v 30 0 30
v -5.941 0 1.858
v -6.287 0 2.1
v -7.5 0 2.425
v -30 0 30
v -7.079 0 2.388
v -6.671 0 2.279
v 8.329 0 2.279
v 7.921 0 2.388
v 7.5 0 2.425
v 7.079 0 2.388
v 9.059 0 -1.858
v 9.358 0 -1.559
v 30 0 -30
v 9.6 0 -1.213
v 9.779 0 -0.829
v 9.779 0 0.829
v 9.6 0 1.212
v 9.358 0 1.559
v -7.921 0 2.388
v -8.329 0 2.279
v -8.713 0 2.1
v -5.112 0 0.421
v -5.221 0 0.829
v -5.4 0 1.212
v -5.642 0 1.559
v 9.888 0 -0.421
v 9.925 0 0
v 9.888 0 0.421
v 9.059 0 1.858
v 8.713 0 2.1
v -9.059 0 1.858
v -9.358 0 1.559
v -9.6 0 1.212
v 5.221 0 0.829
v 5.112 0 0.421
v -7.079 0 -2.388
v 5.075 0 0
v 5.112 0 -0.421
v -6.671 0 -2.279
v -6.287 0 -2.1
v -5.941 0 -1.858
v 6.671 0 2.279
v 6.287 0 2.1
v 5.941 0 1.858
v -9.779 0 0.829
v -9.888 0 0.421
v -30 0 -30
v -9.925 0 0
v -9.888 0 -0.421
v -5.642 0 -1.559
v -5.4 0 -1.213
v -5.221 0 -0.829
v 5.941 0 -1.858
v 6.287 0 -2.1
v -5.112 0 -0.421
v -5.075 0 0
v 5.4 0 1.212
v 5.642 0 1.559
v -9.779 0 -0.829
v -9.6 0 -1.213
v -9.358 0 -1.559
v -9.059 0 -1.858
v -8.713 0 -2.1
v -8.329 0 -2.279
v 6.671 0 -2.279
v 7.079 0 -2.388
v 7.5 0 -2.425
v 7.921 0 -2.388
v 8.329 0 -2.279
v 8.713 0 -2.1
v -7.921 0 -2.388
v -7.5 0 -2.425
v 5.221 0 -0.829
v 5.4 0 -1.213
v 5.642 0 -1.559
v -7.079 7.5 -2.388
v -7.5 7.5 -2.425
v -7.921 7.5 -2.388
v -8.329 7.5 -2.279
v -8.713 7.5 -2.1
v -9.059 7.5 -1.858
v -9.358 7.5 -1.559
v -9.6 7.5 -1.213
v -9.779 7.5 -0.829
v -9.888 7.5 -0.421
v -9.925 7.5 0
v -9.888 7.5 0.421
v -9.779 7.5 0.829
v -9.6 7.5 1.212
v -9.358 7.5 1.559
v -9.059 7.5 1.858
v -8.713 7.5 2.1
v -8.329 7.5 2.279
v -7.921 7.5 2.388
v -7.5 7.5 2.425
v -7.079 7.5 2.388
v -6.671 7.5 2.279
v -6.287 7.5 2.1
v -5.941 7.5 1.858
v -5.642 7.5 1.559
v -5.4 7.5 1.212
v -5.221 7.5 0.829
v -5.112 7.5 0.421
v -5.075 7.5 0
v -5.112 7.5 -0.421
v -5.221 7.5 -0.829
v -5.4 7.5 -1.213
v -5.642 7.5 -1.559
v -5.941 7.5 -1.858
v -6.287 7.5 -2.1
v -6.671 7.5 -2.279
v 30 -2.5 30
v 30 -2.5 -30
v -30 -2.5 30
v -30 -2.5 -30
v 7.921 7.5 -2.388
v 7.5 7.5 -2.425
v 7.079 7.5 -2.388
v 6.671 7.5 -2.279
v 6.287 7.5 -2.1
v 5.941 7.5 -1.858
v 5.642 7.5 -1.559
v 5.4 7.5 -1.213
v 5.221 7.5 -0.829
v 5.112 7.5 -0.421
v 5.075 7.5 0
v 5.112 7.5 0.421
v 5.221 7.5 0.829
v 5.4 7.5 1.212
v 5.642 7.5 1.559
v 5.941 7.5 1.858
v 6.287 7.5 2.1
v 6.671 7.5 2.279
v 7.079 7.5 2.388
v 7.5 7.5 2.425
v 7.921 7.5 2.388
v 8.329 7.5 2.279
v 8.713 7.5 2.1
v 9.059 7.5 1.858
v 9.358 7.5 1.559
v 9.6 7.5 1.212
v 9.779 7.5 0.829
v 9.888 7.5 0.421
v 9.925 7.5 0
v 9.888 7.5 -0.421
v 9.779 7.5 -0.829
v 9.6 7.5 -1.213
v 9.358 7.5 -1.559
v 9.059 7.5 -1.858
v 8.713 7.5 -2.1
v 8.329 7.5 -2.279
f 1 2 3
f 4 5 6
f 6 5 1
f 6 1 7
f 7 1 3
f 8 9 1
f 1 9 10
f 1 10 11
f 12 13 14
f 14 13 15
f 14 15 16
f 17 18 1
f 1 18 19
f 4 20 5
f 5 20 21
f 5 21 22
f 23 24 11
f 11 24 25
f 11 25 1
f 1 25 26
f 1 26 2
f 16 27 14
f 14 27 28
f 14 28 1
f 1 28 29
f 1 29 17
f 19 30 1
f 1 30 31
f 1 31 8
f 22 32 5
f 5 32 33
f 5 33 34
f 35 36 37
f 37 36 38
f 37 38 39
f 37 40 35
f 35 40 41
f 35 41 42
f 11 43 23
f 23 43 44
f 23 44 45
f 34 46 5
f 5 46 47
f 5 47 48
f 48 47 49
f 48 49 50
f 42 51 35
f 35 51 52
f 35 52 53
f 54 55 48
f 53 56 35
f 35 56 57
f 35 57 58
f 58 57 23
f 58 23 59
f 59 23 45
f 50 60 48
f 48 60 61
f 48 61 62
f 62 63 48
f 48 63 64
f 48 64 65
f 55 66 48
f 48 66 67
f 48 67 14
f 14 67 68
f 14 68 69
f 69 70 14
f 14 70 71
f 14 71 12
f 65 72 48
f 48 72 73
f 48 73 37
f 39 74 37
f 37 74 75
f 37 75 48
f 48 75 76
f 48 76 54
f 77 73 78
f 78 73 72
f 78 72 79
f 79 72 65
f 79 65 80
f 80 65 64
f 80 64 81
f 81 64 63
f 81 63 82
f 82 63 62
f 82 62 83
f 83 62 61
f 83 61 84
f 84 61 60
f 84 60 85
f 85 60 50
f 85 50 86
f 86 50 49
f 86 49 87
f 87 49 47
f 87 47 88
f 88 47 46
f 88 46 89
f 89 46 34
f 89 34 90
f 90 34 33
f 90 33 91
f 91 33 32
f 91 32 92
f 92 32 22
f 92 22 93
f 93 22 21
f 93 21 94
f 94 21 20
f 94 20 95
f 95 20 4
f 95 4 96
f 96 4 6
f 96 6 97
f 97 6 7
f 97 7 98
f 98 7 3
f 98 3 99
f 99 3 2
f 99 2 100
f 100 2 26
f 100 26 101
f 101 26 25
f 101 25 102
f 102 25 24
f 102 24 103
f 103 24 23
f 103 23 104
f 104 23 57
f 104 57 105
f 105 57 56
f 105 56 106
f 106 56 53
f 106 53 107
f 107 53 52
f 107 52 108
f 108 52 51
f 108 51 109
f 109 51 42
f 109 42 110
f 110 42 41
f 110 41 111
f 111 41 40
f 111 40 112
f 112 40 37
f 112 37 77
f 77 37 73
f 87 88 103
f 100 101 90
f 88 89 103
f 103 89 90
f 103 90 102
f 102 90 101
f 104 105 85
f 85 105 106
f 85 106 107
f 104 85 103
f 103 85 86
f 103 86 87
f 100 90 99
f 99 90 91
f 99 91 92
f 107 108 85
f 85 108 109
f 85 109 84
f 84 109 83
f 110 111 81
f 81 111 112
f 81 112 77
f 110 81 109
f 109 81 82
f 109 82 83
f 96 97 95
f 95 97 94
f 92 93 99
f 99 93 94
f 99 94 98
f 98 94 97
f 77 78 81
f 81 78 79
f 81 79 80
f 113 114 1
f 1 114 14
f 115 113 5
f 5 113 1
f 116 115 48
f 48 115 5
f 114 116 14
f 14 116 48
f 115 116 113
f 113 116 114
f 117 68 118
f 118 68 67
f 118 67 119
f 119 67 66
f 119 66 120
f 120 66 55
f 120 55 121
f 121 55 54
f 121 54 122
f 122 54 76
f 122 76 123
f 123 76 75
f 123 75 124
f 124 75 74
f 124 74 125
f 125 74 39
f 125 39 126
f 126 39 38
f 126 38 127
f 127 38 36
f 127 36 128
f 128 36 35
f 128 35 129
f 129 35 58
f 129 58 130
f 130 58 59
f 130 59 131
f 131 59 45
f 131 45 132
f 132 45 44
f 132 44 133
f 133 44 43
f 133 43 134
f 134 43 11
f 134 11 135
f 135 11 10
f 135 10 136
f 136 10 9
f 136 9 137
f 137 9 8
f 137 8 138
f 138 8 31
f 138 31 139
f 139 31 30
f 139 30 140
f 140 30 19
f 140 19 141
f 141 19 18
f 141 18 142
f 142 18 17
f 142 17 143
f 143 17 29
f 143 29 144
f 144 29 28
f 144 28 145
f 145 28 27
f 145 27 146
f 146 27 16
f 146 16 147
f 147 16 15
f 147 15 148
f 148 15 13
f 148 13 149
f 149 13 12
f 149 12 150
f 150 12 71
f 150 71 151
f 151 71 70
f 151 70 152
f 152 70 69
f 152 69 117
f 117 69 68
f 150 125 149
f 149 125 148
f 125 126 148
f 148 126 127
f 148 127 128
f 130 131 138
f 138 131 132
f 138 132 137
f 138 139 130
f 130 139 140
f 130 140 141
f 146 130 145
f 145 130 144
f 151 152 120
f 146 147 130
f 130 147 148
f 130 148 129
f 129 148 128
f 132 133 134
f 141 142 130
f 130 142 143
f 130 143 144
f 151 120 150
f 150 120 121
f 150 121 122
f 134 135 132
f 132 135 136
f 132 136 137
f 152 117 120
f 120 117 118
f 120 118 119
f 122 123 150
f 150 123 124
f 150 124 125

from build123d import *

# Parameters (mm, degrees)
SKETCH1_R             = 2.425
BOSS_EXTRUDE1_DEPTH   = 7.5
BOSS_EXTRUDE1_2_DEPTH = 7.5
SKETCH2_W             = 60
SKETCH2_H             = 60
BOSS_EXTRUDE2_DEPTH   = 2.5


with BuildPart() as part:
    # Sketch1 → Boss-Extrude1 (new body)
    with BuildSketch(Plane(origin=(0, 0, 0), x_dir=(1, 0, 0), z_dir=(0, 1, 0))):
        with Locations(Location((-7.5, 0, 0), (0, 0, 270))):
            Circle(SKETCH1_R)
    extrude(amount=BOSS_EXTRUDE1_DEPTH)



with BuildPart() as body_2:
    # Sketch1 → Boss-Extrude1 2 (new body)
    with BuildSketch(Plane(origin=(0, 0, 0), x_dir=(1, 0, 0), z_dir=(0, 1, 0))):
        with Locations(Location((7.5, 0, 0), (0, 0, 270))):
            Circle(SKETCH1_R)
    extrude(amount=BOSS_EXTRUDE1_2_DEPTH)


with BuildPart() as part_1:
    add(part.part)

    add(body_2.part)  # Boss-Extrude2 merges body 2
    # Sketch2 → Boss-Extrude2 (add)
    with BuildSketch(Plane(origin=(0, 0, 0), x_dir=(1, 0, 0), z_dir=(0, 1, 0))):
        Rectangle(SKETCH2_W, SKETCH2_H)
    extrude(amount=-BOSS_EXTRUDE2_DEPTH)


solid = part_1.part
